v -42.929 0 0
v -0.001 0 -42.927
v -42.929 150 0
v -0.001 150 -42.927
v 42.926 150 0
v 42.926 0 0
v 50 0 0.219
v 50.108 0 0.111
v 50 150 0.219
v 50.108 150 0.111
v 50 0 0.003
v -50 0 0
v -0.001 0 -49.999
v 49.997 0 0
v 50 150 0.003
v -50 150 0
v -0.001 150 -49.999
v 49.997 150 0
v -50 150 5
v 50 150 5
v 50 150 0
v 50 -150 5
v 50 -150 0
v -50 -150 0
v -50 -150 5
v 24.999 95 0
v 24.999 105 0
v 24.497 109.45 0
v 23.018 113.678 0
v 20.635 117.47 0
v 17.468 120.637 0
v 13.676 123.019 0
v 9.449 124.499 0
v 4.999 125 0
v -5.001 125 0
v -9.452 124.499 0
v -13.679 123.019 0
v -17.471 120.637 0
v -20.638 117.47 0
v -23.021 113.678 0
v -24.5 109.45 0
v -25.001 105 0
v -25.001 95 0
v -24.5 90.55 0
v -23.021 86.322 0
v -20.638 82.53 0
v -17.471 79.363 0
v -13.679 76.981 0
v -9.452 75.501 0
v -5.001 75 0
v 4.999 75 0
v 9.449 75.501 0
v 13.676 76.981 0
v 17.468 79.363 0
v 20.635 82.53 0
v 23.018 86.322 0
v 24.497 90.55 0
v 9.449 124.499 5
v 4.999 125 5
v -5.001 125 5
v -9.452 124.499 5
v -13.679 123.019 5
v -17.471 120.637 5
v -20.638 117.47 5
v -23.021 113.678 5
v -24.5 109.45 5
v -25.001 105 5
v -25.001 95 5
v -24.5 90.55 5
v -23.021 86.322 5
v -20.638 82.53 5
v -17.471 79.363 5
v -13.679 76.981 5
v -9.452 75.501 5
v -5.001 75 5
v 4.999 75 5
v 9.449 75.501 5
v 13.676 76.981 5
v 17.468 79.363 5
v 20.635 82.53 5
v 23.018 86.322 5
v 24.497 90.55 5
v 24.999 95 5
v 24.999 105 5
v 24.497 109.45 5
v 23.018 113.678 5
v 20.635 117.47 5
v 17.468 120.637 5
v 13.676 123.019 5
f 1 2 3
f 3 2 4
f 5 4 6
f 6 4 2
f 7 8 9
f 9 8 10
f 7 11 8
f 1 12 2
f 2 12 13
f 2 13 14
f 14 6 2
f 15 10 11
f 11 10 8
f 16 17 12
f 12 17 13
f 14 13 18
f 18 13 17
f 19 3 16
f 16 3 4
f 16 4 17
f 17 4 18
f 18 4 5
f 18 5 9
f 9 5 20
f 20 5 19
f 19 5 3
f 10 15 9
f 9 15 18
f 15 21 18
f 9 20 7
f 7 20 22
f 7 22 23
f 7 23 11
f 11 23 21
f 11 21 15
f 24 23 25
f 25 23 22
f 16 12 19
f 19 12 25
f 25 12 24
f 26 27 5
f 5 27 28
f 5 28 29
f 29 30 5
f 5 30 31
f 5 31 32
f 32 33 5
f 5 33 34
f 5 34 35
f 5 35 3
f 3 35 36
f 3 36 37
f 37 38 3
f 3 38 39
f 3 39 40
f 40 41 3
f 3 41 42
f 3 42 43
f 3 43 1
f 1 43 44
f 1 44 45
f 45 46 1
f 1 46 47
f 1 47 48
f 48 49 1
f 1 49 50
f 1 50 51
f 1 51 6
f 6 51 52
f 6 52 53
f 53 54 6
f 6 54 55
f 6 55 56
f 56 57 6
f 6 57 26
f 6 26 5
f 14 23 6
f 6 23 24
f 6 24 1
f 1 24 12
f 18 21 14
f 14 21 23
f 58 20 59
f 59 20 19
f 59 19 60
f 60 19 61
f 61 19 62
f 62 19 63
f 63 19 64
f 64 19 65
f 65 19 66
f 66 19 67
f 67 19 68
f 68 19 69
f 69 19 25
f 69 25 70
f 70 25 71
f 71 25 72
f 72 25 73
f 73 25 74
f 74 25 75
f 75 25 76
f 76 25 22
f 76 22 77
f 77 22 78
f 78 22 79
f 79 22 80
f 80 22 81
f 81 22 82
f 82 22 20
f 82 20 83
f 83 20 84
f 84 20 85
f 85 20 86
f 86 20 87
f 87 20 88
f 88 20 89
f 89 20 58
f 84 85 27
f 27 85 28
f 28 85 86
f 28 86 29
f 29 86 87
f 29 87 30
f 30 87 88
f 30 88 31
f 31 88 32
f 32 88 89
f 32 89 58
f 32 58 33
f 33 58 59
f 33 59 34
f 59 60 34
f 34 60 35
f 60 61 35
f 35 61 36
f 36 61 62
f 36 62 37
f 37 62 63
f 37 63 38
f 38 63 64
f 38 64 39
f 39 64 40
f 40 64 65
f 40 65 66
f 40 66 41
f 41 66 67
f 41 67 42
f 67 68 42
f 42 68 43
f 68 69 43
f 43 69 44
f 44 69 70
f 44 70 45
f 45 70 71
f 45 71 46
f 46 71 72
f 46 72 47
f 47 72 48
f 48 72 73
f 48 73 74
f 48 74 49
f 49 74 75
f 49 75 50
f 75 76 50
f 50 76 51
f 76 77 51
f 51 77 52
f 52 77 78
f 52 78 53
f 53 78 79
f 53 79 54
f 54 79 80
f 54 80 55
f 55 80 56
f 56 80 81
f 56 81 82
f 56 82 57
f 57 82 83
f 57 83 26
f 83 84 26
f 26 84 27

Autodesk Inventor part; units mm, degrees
ref_plane "YZ Plane" through (0, 0, 0) normal (1, 0, 0) x (0, 1, 0)
ref_plane "XZ Plane" through (0, 0, 0) normal (0, 1, 0) x (-1, 0, 0)
ref_plane "XY Plane" through (0, 0, 0) normal (0, 0, 1) x (1, 0, 0)
sketch "Sketch1" plane through (0, 0, 0) normal (0, 0, 1) x (1, 0, 0)
  line L0 (-50, -150) -> (50, -150)
  line L1 (50, -150) -> (50, 150)
  line L2 (50, 150) -> (-50, 150)
  line L3 (-50, 150) -> (-50, -150)
  line L4 (-50, -150) -> (50, 150) construction
  line L5 (50, -150) -> (-50, 150) construction
  point P0 (0, 0)
  dimension "d0" = 100
  dimension "d1" = 300
extrude "Extrusion1" add sketch "Sketch1" along normal blind 5
sketch "Sketch2" plane through (-50, 150, 0) normal (0, 1, 0) x (1, 0, 0)
  line L0 (0, 0) -> (100, 0) projected
  line L1 (0, 0) -> (49.9986, 49.9986)
  line L2 (49.9986, 49.9986) -> (53.5341, 46.463)
  line L3 (53.5341, 46.463) -> (3.5355, -3.5355)
  line L4 (3.5355, -3.5355) -> (0, 0)
  line L5 (0, 0) -> (70.7086, 0) construction
  line L6 (100.108, -0.1109) -> (53.5341, 46.463)
  line L7 (53.5341, 46.463) -> (49.9986, 42.9275)
  line L8 (49.9986, 42.9275) -> (96.5724, -3.6464)
  line L9 (96.5724, -3.6464) -> (100.108, -0.1109)
  point P0 (50, 0)
  point P1 (49.9986, 42.9275)
  dimension "d4" = 45
  dimension "d5" = 5
  dimension "d6" = 5
extrude "Extrusion2" add sketch "Sketch2" against normal blind 150 contours L1 L2 L3 L0 | L0 L3 L4 | L8 L3 L6 L0 | L0 L6 L9 L8
sketch "Sketch7" plane through (0, 0, 5) normal (0, 0, 1) x (1, 0, 0)
  line L0 (4.9986, 125) -> (-5.0014, 125)
  line L1 (-25.0014, 105) -> (-25.0014, 95)
  line L2 (-5.0014, 75) -> (4.9986, 75)
  line L3 (24.9986, 95) -> (24.9986, 105)
  line L4 (-0.0014, 150) -> (-0.0014, 0) projected
  line L5 (24.9986, 125) -> (-25.0014, 75) construction
  line L6 (-25.0014, 125) -> (24.9986, 75) construction
  arc A0 (4.9986, 75) -> (24.9986, 95) centre (4.9986, 95) ccw
  arc A1 (24.9986, 105) -> (4.9986, 125) centre (4.9986, 105) ccw
  arc A2 (-5.0014, 125) -> (-25.0014, 105) centre (-5.0014, 105) ccw
  arc A3 (-25.0014, 95) -> (-5.0014, 75) centre (-5.0014, 95) ccw
  point P0 (0, 0)
  point P1 (-0.0014, 100)
  dimension "d26" = 50
  dimension "d27" = 50
  dimension "d28" = 20
extrude "Extrusion7" cut sketch "Sketch7" against normal blind 5
properties part number "fixation_v06"
